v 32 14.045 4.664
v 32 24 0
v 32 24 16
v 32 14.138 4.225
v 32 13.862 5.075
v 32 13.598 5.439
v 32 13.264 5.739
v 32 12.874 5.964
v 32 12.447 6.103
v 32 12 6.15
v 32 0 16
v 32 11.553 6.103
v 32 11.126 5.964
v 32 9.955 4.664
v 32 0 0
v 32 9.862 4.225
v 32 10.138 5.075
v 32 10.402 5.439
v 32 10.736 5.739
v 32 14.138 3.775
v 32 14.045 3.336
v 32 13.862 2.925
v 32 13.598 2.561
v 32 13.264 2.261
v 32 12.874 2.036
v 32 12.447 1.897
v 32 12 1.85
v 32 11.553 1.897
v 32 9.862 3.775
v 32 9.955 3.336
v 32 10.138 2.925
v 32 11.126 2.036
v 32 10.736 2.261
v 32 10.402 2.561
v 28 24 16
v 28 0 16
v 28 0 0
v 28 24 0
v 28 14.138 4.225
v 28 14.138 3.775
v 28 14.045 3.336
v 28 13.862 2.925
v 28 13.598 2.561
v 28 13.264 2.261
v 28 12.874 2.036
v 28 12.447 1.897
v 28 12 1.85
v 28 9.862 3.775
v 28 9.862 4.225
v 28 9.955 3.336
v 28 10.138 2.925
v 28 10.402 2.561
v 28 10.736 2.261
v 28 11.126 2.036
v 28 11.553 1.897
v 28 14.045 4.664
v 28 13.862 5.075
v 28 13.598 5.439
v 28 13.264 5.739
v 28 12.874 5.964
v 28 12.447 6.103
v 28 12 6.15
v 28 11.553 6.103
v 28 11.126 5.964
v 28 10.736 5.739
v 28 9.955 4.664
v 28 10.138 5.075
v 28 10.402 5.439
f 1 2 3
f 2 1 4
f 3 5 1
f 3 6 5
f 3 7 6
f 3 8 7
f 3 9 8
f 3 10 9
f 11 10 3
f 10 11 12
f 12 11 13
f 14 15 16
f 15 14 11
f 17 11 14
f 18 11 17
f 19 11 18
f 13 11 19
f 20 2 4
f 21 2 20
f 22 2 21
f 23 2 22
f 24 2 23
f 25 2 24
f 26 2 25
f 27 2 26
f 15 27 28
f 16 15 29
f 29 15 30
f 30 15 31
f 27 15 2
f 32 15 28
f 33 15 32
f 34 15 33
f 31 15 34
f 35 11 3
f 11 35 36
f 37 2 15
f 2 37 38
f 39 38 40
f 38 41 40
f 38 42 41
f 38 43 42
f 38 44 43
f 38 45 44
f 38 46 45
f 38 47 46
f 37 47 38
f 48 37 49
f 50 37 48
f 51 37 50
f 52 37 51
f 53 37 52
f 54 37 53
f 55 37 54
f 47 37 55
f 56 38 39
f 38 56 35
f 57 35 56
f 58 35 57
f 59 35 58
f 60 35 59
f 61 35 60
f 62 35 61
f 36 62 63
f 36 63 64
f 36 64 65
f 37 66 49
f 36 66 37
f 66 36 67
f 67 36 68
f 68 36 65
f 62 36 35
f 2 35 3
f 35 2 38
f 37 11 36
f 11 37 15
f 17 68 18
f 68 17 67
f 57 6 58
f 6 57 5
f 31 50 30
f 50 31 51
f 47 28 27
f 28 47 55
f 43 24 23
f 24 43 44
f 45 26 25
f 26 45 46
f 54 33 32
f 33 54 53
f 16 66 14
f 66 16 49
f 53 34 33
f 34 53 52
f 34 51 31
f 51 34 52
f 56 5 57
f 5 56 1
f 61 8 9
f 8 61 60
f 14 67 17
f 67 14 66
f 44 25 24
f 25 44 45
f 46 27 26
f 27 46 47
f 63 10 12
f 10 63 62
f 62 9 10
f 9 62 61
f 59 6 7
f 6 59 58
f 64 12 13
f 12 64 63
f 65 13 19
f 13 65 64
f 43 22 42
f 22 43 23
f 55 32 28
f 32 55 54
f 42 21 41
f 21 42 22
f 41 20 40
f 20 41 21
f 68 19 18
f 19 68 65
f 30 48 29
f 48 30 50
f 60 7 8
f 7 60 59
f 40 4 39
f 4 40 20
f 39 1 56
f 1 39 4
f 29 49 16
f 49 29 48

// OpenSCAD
// left GR of left entry
color ("teal")
difference() {
union() {
    // horizontal piece
    translate([28,0,0])
    cube([4,24,16]);
}
    // left hole
    translate([-4,12,4])
    rotate([0,90,0])
    cylinder(r=2.15,60, $fn=30);
}
